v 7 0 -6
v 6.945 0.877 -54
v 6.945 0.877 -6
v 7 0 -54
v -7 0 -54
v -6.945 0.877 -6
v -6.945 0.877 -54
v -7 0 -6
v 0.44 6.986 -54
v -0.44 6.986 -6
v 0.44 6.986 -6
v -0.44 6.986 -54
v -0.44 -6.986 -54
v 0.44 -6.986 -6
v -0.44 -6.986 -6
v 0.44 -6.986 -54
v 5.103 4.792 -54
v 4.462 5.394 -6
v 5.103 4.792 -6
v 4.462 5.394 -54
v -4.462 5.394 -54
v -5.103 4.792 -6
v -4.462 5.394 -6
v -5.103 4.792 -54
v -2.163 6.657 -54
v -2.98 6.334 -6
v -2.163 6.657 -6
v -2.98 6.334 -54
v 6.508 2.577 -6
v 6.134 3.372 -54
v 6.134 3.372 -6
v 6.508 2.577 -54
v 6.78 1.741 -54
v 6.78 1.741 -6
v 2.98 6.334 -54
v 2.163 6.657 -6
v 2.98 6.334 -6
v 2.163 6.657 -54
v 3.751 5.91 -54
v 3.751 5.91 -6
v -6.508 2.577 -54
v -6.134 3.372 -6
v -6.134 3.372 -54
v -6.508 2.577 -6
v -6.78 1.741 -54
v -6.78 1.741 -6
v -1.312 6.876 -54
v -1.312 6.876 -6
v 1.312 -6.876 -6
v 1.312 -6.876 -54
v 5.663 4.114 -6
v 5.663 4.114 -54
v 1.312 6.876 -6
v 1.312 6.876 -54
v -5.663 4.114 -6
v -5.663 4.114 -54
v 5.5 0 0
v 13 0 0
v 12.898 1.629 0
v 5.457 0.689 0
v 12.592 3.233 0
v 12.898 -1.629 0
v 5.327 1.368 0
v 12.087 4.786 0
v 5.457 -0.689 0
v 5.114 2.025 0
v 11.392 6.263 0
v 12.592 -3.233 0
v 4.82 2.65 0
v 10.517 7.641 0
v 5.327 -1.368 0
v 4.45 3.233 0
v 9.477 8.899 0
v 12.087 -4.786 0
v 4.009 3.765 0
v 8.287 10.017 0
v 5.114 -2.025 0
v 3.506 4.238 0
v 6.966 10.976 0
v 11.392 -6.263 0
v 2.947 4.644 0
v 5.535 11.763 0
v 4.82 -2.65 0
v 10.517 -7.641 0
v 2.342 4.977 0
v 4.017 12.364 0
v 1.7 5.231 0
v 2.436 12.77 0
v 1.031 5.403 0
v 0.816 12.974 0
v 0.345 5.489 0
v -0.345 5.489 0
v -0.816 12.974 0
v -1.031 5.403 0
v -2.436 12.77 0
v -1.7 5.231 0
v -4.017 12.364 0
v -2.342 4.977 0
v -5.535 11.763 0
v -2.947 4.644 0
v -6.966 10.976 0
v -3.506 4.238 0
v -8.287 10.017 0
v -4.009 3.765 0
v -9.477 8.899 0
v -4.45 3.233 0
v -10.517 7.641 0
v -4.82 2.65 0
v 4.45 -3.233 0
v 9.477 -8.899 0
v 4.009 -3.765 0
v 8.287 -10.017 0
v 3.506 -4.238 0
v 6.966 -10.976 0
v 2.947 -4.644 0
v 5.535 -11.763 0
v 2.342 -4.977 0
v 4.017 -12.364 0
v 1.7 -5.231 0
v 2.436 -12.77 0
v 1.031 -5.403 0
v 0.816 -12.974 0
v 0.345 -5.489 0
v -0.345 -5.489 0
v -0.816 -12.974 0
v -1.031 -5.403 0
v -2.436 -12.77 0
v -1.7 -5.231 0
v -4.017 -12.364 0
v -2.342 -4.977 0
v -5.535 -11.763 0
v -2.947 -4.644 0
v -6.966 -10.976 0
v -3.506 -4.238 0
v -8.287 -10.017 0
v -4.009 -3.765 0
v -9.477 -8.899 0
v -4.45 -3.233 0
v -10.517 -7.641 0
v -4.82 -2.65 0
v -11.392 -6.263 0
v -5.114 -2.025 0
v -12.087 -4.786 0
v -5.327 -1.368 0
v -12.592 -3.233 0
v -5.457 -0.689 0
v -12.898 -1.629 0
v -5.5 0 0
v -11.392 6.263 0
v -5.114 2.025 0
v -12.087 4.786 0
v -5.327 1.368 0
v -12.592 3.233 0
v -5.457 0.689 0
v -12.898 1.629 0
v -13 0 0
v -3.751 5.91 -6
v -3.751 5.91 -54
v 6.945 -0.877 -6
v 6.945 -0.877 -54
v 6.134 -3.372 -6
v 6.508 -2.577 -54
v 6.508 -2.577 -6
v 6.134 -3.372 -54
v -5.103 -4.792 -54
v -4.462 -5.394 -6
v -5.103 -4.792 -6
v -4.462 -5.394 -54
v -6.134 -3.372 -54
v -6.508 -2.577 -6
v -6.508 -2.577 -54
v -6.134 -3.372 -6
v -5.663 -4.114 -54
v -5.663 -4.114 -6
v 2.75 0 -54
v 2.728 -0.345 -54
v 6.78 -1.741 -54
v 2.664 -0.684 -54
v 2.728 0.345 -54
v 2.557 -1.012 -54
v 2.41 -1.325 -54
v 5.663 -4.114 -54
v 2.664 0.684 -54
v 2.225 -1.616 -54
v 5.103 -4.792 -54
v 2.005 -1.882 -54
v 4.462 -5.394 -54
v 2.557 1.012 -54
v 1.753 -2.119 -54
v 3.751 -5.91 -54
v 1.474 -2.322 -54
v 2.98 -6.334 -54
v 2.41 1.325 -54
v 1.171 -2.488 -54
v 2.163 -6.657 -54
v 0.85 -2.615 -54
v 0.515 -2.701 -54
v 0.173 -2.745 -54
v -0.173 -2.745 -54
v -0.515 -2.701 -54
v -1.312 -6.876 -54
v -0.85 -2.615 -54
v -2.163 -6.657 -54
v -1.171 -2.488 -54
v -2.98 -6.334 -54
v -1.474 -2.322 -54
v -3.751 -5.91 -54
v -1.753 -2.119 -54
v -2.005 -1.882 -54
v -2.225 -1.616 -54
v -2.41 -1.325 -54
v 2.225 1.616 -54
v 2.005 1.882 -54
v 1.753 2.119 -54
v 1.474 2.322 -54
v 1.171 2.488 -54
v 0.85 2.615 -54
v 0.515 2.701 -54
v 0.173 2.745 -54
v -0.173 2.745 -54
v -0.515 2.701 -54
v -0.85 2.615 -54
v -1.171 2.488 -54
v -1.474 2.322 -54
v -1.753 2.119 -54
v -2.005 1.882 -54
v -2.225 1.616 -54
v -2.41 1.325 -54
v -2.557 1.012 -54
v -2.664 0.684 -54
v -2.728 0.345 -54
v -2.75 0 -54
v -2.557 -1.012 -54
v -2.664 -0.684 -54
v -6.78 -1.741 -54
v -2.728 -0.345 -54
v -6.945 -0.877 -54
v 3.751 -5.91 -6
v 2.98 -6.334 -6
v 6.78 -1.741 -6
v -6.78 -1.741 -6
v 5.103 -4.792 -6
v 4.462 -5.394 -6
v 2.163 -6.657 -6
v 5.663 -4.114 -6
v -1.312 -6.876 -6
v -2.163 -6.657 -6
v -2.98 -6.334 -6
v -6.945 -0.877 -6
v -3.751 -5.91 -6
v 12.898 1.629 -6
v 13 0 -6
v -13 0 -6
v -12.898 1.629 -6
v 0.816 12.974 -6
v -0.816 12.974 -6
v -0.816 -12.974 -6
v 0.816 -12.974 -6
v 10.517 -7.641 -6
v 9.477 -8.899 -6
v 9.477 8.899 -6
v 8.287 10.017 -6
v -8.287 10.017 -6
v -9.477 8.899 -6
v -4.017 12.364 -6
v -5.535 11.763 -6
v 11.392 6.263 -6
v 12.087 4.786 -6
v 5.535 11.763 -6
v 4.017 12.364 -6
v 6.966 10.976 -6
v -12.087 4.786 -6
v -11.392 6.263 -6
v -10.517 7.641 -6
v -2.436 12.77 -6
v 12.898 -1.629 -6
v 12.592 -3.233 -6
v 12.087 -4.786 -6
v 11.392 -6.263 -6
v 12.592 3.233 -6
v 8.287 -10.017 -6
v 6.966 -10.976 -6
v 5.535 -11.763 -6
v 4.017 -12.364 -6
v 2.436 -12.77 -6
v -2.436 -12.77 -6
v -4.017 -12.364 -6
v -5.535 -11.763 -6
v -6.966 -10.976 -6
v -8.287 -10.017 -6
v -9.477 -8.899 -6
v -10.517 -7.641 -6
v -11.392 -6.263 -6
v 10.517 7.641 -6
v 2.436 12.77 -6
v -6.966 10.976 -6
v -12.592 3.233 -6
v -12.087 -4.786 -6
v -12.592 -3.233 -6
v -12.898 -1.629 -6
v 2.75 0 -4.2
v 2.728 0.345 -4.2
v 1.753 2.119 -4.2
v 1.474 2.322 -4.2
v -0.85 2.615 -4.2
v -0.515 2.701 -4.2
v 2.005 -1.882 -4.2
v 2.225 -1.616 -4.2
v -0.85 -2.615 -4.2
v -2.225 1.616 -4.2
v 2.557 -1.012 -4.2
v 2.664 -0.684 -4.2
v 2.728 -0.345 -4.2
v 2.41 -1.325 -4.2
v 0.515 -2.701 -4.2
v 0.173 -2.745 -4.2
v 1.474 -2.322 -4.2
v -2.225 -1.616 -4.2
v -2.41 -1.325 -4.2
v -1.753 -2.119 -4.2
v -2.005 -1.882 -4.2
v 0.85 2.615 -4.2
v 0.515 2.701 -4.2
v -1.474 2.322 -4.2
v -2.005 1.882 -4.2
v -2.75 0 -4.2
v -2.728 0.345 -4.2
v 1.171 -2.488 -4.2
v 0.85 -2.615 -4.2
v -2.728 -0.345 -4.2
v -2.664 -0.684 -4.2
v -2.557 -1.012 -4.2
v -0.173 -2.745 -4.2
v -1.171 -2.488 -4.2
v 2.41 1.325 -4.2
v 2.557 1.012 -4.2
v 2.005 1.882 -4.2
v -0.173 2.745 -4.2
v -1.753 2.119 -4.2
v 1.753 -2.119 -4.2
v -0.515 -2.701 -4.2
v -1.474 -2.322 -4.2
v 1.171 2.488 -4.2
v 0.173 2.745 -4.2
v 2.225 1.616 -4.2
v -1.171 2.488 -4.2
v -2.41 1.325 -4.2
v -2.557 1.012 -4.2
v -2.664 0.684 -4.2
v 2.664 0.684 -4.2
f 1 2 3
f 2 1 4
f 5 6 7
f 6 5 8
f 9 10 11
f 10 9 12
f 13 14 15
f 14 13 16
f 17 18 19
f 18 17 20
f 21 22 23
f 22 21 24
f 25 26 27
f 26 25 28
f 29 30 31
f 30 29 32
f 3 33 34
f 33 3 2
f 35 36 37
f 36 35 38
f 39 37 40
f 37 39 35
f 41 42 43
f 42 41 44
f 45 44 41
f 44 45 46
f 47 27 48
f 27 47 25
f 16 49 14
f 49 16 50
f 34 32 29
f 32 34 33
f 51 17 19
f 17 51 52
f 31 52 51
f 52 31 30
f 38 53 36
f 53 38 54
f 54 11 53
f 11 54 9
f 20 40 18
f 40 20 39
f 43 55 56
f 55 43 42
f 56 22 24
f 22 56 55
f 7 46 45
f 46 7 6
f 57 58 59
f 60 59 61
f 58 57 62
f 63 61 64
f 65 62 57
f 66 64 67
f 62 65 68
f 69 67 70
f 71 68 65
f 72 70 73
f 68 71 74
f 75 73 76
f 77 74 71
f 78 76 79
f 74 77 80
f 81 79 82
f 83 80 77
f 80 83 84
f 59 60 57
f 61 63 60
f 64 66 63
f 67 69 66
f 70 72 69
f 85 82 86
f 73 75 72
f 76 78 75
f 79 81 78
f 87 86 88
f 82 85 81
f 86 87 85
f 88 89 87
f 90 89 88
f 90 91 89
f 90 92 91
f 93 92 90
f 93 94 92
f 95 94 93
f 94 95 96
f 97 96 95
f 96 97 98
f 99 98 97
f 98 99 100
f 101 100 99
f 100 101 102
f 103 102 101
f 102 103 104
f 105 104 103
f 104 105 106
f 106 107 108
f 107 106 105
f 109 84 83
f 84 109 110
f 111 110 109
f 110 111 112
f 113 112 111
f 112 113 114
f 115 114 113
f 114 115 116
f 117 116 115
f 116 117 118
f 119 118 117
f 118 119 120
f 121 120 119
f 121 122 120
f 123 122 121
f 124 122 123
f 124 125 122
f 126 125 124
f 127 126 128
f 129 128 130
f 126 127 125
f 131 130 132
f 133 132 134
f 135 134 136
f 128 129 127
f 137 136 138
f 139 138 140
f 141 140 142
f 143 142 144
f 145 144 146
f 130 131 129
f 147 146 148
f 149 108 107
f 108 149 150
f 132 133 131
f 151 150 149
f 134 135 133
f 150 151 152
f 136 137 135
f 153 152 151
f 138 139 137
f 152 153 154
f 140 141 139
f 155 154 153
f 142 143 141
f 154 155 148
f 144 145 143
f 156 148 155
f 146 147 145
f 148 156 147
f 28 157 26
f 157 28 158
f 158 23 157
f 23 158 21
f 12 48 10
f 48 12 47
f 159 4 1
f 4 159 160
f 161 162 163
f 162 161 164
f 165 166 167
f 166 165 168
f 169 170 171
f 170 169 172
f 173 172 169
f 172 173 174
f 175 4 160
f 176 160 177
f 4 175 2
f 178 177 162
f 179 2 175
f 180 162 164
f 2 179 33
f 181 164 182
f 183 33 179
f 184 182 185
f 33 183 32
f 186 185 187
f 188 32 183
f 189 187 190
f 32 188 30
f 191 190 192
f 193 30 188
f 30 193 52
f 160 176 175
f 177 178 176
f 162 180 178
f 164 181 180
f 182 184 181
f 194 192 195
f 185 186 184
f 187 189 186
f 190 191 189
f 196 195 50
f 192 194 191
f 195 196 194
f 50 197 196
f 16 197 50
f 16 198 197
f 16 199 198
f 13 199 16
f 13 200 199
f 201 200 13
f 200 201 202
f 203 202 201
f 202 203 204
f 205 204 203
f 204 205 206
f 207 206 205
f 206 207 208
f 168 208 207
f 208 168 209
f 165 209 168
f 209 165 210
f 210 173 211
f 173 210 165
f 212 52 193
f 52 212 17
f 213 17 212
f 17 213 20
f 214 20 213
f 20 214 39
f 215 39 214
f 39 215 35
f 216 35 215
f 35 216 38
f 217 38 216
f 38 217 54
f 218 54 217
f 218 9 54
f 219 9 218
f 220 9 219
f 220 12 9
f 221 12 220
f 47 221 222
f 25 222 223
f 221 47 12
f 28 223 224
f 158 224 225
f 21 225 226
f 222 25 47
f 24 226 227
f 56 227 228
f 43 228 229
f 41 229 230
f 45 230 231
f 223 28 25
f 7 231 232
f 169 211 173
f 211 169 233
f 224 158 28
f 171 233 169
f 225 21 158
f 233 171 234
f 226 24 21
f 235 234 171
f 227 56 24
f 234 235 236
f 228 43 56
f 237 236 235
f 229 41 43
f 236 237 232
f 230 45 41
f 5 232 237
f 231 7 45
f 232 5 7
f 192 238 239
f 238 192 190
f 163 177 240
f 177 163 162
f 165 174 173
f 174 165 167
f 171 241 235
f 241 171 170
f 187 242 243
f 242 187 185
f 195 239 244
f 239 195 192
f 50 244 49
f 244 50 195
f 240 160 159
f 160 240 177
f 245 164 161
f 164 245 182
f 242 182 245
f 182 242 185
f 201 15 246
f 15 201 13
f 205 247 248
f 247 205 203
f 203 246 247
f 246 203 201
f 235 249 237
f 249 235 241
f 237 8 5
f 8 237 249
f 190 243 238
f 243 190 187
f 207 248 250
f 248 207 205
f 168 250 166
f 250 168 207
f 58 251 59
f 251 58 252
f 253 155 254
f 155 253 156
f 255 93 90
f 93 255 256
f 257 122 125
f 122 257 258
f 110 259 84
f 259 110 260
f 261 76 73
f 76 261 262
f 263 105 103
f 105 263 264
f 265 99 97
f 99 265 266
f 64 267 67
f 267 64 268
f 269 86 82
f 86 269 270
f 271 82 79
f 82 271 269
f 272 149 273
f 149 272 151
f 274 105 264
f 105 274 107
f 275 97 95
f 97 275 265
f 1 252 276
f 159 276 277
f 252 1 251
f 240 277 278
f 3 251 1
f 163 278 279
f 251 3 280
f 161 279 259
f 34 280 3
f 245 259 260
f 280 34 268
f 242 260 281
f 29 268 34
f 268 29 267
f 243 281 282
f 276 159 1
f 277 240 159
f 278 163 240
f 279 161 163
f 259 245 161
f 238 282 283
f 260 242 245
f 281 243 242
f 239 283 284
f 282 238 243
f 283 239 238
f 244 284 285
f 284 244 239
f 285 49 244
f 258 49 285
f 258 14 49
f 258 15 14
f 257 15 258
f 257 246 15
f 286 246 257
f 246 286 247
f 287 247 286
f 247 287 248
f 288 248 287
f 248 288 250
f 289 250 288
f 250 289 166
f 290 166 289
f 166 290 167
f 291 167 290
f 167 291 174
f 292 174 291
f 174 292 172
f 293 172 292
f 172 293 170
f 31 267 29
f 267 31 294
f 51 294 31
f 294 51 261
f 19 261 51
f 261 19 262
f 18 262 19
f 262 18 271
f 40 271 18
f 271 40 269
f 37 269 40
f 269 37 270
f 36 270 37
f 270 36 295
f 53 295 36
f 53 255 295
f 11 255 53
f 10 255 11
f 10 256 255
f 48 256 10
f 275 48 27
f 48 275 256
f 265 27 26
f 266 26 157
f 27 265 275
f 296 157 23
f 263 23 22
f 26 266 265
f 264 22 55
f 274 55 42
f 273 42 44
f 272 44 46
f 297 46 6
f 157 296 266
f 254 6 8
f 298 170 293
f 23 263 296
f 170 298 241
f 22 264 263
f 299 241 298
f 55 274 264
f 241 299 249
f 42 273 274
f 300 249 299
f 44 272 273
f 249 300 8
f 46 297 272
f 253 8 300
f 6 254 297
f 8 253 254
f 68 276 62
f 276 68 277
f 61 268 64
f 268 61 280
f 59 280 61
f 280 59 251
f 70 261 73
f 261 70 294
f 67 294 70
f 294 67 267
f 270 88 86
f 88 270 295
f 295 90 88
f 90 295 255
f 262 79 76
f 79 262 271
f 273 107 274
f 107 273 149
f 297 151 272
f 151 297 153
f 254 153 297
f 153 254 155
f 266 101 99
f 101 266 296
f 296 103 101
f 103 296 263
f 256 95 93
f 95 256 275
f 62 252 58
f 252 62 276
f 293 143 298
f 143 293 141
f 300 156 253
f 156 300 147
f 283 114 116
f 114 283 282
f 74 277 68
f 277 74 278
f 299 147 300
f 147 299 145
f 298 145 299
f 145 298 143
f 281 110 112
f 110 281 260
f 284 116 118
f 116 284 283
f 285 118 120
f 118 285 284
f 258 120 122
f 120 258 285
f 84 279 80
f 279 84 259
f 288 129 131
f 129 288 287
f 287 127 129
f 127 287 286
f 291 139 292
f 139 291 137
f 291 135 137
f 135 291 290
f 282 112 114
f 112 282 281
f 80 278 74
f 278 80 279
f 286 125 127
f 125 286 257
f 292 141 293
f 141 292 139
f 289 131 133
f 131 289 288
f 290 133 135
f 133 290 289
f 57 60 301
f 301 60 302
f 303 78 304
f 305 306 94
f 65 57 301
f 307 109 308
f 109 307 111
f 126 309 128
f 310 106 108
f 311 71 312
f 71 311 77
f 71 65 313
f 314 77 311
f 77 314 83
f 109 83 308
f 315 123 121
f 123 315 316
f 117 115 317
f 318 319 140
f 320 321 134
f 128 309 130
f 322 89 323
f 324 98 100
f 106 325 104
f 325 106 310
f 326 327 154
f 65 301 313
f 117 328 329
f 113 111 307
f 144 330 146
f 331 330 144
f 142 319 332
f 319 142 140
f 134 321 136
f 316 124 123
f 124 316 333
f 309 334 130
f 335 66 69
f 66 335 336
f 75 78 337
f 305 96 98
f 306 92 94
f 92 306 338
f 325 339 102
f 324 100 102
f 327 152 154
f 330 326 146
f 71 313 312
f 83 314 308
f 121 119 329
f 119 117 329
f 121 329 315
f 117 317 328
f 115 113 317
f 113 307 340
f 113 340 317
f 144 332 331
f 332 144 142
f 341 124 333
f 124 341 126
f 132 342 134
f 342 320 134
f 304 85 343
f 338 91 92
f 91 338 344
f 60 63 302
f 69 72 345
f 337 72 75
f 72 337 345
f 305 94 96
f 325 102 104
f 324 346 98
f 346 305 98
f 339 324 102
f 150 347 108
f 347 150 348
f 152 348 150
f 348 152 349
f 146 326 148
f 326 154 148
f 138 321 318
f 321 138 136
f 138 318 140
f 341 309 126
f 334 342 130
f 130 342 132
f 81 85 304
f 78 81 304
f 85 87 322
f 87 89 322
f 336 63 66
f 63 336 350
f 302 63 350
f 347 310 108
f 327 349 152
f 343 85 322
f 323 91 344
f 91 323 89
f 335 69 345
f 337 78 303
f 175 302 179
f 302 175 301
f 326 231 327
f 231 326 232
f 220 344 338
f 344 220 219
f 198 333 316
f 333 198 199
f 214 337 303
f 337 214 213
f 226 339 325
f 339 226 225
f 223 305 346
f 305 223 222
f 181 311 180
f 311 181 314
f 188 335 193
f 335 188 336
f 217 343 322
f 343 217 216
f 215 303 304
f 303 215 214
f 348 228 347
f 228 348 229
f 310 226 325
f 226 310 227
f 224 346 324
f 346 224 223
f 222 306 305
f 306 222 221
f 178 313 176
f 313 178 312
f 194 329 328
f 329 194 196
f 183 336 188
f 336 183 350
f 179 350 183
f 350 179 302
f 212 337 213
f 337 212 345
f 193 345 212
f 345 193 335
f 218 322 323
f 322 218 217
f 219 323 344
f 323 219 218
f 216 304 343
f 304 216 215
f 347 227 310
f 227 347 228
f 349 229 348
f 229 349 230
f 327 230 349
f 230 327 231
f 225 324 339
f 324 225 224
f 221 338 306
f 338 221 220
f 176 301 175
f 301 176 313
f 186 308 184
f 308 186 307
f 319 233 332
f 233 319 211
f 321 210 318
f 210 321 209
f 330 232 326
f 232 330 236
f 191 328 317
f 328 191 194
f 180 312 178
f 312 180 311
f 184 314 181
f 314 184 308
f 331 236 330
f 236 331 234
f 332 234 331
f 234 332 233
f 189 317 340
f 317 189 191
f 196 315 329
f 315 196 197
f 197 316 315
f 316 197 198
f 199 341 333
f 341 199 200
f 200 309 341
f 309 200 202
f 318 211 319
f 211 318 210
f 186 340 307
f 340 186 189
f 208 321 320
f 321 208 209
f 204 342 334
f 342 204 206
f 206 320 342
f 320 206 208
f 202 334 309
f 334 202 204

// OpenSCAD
$fn = 50;


difference() {
	union() {
		translate(v = [0, 0, -54.0000000000]) {
			cylinder(h = 54, r = 7.0000000000);
		}
		translate(v = [0, 0, -6.0000000000]) {
			cylinder(h = 6, r = 13.0000000000);
		}
	}
	union() {
		translate(v = [0, 0, 0]) {
			rotate(a = [0, 0, 0]) {
				difference() {
					union() {
						#translate(v = [0, 0, -54.0000000000]) {
							cylinder(h = 54, r = 2.2500000000);
						}
						#translate(v = [0, 0, -4.2000000000]) {
							cylinder(h = 4.2000000000, r1 = 2.7500000000, r2 = 5.5000000000);
						}
						#translate(v = [0, 0, -54.0000000000]) {
							cylinder(h = 54, r = 2.7500000000);
						}
						#translate(v = [0, 0, -54.0000000000]) {
							cylinder(h = 54, r = 2.2500000000);
						}
					}
					union();
				}
			}
		}
	}
}
